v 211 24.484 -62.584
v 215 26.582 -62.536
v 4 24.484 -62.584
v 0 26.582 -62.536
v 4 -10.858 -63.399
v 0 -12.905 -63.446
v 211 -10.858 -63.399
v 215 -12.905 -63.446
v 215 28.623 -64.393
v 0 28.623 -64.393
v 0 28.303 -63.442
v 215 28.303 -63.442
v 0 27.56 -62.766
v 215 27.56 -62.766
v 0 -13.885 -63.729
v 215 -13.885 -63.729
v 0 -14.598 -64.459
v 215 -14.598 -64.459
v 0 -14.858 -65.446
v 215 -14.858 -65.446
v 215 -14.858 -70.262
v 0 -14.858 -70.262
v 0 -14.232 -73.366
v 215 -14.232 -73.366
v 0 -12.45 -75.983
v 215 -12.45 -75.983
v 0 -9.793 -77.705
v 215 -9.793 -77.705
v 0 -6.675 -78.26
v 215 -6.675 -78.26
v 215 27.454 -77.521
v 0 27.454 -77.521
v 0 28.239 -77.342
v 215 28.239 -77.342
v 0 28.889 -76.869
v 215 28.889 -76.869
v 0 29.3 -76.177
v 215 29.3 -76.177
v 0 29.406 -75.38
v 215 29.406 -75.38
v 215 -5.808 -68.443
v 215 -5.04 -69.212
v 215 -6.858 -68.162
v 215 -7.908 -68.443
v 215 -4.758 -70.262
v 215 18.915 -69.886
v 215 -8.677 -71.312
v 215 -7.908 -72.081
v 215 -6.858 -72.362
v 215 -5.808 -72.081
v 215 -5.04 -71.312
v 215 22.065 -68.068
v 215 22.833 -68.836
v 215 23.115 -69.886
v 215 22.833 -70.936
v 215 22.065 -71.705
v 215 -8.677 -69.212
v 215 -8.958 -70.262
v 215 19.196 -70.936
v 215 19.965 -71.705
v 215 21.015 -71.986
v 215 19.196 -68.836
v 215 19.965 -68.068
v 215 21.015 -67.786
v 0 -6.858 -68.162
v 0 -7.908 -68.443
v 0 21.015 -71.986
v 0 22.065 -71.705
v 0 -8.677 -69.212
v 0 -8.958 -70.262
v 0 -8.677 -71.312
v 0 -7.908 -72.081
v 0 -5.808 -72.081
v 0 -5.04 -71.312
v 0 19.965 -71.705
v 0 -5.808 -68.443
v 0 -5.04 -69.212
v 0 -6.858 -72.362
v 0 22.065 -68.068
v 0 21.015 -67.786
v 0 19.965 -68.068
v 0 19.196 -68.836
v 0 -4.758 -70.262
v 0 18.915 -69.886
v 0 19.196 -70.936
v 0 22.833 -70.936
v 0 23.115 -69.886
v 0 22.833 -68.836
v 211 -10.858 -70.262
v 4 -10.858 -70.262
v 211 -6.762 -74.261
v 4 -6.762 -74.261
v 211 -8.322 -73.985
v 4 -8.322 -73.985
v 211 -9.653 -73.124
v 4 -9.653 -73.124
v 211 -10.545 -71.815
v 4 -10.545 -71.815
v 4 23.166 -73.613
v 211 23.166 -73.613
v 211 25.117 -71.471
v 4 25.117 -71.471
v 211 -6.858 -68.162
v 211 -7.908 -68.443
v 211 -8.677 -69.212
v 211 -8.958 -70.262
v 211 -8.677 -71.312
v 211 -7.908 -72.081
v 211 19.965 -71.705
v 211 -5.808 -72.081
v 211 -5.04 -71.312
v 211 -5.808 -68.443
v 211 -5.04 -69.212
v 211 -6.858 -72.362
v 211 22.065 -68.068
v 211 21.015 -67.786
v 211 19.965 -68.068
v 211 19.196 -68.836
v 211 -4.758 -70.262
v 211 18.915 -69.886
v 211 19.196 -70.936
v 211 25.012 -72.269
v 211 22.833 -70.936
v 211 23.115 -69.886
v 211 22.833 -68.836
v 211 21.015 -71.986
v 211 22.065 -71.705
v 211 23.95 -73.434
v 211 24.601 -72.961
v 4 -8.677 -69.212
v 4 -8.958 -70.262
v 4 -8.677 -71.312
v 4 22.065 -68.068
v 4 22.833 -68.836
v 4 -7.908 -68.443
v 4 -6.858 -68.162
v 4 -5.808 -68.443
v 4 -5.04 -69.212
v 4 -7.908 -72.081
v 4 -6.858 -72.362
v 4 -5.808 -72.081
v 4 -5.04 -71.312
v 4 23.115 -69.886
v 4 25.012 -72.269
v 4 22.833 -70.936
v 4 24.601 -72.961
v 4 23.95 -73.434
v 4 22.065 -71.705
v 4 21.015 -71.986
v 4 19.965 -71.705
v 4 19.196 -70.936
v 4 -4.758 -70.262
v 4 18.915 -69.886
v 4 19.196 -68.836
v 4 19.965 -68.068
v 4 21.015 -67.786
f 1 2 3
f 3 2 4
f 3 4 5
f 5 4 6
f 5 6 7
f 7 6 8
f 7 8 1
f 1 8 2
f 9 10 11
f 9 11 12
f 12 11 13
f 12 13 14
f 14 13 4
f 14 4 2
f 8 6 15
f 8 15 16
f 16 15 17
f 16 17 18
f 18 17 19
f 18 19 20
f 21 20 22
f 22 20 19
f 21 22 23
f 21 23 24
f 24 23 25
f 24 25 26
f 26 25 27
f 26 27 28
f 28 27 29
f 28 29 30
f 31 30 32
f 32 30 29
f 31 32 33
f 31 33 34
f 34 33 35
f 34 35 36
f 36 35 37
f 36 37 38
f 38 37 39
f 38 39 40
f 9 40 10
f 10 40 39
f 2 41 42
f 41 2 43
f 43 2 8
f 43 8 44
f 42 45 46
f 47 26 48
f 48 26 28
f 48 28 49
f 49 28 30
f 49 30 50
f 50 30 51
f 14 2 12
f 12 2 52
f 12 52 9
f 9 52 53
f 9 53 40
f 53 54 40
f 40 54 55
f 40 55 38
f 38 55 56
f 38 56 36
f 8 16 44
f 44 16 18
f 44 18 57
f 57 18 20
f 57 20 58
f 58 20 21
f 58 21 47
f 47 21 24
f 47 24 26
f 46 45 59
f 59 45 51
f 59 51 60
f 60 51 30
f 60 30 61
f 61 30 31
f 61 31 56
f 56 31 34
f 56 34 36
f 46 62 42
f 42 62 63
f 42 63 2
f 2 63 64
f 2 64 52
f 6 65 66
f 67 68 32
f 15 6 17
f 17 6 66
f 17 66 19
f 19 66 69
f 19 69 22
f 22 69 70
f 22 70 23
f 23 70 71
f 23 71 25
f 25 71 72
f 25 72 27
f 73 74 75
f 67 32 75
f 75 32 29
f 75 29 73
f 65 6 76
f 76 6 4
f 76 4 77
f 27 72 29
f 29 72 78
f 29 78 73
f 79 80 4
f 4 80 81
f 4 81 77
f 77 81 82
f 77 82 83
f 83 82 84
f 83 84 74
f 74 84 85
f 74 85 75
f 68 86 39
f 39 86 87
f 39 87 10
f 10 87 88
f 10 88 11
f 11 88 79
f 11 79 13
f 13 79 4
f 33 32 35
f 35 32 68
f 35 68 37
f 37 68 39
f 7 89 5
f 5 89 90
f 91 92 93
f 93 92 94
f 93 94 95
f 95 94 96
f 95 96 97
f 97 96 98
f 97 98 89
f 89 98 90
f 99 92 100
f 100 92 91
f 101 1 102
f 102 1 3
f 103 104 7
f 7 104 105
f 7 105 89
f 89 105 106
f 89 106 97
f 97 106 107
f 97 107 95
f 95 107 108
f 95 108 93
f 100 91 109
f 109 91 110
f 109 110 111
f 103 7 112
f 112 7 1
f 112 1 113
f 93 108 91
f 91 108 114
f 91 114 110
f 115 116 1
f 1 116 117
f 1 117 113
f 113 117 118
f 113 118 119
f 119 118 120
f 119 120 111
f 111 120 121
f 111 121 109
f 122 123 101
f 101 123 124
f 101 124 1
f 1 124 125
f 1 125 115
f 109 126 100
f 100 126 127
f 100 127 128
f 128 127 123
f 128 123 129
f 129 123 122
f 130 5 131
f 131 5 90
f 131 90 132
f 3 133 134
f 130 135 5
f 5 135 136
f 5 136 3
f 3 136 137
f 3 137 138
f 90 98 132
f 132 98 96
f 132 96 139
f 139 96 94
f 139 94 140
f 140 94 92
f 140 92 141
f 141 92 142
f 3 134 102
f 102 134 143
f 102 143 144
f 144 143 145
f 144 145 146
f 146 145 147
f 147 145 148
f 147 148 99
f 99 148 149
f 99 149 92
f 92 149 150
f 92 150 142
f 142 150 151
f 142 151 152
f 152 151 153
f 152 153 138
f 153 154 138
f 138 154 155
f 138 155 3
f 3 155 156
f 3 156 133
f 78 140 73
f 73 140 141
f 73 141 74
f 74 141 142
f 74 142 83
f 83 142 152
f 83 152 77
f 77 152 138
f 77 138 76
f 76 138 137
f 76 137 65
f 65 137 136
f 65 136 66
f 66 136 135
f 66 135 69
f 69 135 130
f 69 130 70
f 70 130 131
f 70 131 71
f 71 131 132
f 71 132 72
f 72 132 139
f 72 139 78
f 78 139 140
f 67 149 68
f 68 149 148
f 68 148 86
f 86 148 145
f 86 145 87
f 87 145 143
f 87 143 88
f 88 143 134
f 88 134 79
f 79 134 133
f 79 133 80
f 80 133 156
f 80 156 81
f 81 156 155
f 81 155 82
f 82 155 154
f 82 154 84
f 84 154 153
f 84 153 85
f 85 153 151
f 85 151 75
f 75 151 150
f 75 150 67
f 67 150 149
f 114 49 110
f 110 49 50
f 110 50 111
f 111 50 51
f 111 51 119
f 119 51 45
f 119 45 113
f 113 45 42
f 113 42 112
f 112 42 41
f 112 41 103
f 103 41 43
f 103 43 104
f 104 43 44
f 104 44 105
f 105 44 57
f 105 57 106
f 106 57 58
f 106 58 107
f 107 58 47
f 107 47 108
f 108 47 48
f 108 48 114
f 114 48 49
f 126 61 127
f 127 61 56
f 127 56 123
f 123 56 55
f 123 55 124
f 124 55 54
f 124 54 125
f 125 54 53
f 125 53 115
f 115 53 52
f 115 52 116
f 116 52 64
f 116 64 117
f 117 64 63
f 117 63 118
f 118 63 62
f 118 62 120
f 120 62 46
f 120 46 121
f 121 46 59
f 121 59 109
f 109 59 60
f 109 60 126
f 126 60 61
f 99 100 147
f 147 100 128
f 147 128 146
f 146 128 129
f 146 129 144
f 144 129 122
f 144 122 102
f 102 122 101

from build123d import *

# Parameters (mm, degrees)
BOSS_EXTRUDE1_DEPTH = 215
SHELL1_START        = 4
SHELL1_DEPTH        = 207
SKETCH3_R           = 2.1
CUT_EXTRUDE1_DEPTH  = 231.683632934
FILLET1_R           = 2


# Read off the part's stored shape, not the designer's step: Shell1
with BuildPart() as part:
    # Sketch1 → Boss-Extrude1 (new body)
    with BuildSketch(Plane(origin=(0, 0, 0), x_dir=(0, 0, -1), z_dir=(1, 0, 0))):
        with BuildLine():
            Line((70.261974321, -14.858488677), (65.445567386, -14.858488677))
            ThreePointArc((65.445567386, -14.858488677), (64.047743646, -14.288904278), (63.446098501, -12.904577468))
            Line((63.446098501, -12.904577468), (62.535908701, 26.582164322))
            ThreePointArc((62.535908701, 26.582164322), (63.05617043, 27.974338618), (64.393258315, 28.623197251))
            Line((64.393258315, 28.623197251), (75.379560776, 29.405858418))
            ThreePointArc((75.379560776, 29.405858418), (76.868805698, 28.889174231), (77.521211792, 27.454190163))
            Line((77.521211792, 27.454190163), (78.259876122, -6.675276303))
            ThreePointArc((78.259876122, -6.675276303), (75.98323725, -12.450192398), (70.261974321, -14.858488677))
        make_face()
    extrude(amount=BOSS_EXTRUDE1_DEPTH)

    # Shell1 outline → Shell1 (cut)
    with BuildSketch(Plane.YZ.offset(SHELL1_START)):
        with BuildLine():
            Line((-10.858488677, -63.398935097), (-10.858488677, -70.261974321))
            ThreePointArc((-10.858488677, -70.261974321), (-9.652532179, -73.124372077), (-6.761828222, -74.260806245))
            Line((-6.761828222, -74.260806245), (25.266638922, -73.567620252))
            Line((25.266638922, -73.567620252), (24.484187937, -62.584268141))
            Line((24.484187937, -62.584268141), (-10.858488677, -63.398935097))
        make_face()
    extrude(amount=SHELL1_DEPTH, mode=Mode.SUBTRACT)

    # Sketch3 → Cut-Extrude1 (cut, through all)
    with BuildSketch(Plane(origin=(215, 0, 0), x_dir=(0, 0, -1), z_dir=(1, 0, 0))):
        with Locations((70.261974321, -6.858488677)):
            Circle(SKETCH3_R)
        with Locations((69.886409545, 21.014527834)):
            Circle(SKETCH3_R)
    extrude(amount=-CUT_EXTRUDE1_DEPTH, mode=Mode.SUBTRACT)

    # Fillet1
    fillet1_edges = [part.edges().sort_by_distance(p)[0] for p in [
        (107.5, 25.266638922, -73.567620252),
    ]]
    fillet(fillet1_edges, radius=FILLET1_R)


solid = part.part
